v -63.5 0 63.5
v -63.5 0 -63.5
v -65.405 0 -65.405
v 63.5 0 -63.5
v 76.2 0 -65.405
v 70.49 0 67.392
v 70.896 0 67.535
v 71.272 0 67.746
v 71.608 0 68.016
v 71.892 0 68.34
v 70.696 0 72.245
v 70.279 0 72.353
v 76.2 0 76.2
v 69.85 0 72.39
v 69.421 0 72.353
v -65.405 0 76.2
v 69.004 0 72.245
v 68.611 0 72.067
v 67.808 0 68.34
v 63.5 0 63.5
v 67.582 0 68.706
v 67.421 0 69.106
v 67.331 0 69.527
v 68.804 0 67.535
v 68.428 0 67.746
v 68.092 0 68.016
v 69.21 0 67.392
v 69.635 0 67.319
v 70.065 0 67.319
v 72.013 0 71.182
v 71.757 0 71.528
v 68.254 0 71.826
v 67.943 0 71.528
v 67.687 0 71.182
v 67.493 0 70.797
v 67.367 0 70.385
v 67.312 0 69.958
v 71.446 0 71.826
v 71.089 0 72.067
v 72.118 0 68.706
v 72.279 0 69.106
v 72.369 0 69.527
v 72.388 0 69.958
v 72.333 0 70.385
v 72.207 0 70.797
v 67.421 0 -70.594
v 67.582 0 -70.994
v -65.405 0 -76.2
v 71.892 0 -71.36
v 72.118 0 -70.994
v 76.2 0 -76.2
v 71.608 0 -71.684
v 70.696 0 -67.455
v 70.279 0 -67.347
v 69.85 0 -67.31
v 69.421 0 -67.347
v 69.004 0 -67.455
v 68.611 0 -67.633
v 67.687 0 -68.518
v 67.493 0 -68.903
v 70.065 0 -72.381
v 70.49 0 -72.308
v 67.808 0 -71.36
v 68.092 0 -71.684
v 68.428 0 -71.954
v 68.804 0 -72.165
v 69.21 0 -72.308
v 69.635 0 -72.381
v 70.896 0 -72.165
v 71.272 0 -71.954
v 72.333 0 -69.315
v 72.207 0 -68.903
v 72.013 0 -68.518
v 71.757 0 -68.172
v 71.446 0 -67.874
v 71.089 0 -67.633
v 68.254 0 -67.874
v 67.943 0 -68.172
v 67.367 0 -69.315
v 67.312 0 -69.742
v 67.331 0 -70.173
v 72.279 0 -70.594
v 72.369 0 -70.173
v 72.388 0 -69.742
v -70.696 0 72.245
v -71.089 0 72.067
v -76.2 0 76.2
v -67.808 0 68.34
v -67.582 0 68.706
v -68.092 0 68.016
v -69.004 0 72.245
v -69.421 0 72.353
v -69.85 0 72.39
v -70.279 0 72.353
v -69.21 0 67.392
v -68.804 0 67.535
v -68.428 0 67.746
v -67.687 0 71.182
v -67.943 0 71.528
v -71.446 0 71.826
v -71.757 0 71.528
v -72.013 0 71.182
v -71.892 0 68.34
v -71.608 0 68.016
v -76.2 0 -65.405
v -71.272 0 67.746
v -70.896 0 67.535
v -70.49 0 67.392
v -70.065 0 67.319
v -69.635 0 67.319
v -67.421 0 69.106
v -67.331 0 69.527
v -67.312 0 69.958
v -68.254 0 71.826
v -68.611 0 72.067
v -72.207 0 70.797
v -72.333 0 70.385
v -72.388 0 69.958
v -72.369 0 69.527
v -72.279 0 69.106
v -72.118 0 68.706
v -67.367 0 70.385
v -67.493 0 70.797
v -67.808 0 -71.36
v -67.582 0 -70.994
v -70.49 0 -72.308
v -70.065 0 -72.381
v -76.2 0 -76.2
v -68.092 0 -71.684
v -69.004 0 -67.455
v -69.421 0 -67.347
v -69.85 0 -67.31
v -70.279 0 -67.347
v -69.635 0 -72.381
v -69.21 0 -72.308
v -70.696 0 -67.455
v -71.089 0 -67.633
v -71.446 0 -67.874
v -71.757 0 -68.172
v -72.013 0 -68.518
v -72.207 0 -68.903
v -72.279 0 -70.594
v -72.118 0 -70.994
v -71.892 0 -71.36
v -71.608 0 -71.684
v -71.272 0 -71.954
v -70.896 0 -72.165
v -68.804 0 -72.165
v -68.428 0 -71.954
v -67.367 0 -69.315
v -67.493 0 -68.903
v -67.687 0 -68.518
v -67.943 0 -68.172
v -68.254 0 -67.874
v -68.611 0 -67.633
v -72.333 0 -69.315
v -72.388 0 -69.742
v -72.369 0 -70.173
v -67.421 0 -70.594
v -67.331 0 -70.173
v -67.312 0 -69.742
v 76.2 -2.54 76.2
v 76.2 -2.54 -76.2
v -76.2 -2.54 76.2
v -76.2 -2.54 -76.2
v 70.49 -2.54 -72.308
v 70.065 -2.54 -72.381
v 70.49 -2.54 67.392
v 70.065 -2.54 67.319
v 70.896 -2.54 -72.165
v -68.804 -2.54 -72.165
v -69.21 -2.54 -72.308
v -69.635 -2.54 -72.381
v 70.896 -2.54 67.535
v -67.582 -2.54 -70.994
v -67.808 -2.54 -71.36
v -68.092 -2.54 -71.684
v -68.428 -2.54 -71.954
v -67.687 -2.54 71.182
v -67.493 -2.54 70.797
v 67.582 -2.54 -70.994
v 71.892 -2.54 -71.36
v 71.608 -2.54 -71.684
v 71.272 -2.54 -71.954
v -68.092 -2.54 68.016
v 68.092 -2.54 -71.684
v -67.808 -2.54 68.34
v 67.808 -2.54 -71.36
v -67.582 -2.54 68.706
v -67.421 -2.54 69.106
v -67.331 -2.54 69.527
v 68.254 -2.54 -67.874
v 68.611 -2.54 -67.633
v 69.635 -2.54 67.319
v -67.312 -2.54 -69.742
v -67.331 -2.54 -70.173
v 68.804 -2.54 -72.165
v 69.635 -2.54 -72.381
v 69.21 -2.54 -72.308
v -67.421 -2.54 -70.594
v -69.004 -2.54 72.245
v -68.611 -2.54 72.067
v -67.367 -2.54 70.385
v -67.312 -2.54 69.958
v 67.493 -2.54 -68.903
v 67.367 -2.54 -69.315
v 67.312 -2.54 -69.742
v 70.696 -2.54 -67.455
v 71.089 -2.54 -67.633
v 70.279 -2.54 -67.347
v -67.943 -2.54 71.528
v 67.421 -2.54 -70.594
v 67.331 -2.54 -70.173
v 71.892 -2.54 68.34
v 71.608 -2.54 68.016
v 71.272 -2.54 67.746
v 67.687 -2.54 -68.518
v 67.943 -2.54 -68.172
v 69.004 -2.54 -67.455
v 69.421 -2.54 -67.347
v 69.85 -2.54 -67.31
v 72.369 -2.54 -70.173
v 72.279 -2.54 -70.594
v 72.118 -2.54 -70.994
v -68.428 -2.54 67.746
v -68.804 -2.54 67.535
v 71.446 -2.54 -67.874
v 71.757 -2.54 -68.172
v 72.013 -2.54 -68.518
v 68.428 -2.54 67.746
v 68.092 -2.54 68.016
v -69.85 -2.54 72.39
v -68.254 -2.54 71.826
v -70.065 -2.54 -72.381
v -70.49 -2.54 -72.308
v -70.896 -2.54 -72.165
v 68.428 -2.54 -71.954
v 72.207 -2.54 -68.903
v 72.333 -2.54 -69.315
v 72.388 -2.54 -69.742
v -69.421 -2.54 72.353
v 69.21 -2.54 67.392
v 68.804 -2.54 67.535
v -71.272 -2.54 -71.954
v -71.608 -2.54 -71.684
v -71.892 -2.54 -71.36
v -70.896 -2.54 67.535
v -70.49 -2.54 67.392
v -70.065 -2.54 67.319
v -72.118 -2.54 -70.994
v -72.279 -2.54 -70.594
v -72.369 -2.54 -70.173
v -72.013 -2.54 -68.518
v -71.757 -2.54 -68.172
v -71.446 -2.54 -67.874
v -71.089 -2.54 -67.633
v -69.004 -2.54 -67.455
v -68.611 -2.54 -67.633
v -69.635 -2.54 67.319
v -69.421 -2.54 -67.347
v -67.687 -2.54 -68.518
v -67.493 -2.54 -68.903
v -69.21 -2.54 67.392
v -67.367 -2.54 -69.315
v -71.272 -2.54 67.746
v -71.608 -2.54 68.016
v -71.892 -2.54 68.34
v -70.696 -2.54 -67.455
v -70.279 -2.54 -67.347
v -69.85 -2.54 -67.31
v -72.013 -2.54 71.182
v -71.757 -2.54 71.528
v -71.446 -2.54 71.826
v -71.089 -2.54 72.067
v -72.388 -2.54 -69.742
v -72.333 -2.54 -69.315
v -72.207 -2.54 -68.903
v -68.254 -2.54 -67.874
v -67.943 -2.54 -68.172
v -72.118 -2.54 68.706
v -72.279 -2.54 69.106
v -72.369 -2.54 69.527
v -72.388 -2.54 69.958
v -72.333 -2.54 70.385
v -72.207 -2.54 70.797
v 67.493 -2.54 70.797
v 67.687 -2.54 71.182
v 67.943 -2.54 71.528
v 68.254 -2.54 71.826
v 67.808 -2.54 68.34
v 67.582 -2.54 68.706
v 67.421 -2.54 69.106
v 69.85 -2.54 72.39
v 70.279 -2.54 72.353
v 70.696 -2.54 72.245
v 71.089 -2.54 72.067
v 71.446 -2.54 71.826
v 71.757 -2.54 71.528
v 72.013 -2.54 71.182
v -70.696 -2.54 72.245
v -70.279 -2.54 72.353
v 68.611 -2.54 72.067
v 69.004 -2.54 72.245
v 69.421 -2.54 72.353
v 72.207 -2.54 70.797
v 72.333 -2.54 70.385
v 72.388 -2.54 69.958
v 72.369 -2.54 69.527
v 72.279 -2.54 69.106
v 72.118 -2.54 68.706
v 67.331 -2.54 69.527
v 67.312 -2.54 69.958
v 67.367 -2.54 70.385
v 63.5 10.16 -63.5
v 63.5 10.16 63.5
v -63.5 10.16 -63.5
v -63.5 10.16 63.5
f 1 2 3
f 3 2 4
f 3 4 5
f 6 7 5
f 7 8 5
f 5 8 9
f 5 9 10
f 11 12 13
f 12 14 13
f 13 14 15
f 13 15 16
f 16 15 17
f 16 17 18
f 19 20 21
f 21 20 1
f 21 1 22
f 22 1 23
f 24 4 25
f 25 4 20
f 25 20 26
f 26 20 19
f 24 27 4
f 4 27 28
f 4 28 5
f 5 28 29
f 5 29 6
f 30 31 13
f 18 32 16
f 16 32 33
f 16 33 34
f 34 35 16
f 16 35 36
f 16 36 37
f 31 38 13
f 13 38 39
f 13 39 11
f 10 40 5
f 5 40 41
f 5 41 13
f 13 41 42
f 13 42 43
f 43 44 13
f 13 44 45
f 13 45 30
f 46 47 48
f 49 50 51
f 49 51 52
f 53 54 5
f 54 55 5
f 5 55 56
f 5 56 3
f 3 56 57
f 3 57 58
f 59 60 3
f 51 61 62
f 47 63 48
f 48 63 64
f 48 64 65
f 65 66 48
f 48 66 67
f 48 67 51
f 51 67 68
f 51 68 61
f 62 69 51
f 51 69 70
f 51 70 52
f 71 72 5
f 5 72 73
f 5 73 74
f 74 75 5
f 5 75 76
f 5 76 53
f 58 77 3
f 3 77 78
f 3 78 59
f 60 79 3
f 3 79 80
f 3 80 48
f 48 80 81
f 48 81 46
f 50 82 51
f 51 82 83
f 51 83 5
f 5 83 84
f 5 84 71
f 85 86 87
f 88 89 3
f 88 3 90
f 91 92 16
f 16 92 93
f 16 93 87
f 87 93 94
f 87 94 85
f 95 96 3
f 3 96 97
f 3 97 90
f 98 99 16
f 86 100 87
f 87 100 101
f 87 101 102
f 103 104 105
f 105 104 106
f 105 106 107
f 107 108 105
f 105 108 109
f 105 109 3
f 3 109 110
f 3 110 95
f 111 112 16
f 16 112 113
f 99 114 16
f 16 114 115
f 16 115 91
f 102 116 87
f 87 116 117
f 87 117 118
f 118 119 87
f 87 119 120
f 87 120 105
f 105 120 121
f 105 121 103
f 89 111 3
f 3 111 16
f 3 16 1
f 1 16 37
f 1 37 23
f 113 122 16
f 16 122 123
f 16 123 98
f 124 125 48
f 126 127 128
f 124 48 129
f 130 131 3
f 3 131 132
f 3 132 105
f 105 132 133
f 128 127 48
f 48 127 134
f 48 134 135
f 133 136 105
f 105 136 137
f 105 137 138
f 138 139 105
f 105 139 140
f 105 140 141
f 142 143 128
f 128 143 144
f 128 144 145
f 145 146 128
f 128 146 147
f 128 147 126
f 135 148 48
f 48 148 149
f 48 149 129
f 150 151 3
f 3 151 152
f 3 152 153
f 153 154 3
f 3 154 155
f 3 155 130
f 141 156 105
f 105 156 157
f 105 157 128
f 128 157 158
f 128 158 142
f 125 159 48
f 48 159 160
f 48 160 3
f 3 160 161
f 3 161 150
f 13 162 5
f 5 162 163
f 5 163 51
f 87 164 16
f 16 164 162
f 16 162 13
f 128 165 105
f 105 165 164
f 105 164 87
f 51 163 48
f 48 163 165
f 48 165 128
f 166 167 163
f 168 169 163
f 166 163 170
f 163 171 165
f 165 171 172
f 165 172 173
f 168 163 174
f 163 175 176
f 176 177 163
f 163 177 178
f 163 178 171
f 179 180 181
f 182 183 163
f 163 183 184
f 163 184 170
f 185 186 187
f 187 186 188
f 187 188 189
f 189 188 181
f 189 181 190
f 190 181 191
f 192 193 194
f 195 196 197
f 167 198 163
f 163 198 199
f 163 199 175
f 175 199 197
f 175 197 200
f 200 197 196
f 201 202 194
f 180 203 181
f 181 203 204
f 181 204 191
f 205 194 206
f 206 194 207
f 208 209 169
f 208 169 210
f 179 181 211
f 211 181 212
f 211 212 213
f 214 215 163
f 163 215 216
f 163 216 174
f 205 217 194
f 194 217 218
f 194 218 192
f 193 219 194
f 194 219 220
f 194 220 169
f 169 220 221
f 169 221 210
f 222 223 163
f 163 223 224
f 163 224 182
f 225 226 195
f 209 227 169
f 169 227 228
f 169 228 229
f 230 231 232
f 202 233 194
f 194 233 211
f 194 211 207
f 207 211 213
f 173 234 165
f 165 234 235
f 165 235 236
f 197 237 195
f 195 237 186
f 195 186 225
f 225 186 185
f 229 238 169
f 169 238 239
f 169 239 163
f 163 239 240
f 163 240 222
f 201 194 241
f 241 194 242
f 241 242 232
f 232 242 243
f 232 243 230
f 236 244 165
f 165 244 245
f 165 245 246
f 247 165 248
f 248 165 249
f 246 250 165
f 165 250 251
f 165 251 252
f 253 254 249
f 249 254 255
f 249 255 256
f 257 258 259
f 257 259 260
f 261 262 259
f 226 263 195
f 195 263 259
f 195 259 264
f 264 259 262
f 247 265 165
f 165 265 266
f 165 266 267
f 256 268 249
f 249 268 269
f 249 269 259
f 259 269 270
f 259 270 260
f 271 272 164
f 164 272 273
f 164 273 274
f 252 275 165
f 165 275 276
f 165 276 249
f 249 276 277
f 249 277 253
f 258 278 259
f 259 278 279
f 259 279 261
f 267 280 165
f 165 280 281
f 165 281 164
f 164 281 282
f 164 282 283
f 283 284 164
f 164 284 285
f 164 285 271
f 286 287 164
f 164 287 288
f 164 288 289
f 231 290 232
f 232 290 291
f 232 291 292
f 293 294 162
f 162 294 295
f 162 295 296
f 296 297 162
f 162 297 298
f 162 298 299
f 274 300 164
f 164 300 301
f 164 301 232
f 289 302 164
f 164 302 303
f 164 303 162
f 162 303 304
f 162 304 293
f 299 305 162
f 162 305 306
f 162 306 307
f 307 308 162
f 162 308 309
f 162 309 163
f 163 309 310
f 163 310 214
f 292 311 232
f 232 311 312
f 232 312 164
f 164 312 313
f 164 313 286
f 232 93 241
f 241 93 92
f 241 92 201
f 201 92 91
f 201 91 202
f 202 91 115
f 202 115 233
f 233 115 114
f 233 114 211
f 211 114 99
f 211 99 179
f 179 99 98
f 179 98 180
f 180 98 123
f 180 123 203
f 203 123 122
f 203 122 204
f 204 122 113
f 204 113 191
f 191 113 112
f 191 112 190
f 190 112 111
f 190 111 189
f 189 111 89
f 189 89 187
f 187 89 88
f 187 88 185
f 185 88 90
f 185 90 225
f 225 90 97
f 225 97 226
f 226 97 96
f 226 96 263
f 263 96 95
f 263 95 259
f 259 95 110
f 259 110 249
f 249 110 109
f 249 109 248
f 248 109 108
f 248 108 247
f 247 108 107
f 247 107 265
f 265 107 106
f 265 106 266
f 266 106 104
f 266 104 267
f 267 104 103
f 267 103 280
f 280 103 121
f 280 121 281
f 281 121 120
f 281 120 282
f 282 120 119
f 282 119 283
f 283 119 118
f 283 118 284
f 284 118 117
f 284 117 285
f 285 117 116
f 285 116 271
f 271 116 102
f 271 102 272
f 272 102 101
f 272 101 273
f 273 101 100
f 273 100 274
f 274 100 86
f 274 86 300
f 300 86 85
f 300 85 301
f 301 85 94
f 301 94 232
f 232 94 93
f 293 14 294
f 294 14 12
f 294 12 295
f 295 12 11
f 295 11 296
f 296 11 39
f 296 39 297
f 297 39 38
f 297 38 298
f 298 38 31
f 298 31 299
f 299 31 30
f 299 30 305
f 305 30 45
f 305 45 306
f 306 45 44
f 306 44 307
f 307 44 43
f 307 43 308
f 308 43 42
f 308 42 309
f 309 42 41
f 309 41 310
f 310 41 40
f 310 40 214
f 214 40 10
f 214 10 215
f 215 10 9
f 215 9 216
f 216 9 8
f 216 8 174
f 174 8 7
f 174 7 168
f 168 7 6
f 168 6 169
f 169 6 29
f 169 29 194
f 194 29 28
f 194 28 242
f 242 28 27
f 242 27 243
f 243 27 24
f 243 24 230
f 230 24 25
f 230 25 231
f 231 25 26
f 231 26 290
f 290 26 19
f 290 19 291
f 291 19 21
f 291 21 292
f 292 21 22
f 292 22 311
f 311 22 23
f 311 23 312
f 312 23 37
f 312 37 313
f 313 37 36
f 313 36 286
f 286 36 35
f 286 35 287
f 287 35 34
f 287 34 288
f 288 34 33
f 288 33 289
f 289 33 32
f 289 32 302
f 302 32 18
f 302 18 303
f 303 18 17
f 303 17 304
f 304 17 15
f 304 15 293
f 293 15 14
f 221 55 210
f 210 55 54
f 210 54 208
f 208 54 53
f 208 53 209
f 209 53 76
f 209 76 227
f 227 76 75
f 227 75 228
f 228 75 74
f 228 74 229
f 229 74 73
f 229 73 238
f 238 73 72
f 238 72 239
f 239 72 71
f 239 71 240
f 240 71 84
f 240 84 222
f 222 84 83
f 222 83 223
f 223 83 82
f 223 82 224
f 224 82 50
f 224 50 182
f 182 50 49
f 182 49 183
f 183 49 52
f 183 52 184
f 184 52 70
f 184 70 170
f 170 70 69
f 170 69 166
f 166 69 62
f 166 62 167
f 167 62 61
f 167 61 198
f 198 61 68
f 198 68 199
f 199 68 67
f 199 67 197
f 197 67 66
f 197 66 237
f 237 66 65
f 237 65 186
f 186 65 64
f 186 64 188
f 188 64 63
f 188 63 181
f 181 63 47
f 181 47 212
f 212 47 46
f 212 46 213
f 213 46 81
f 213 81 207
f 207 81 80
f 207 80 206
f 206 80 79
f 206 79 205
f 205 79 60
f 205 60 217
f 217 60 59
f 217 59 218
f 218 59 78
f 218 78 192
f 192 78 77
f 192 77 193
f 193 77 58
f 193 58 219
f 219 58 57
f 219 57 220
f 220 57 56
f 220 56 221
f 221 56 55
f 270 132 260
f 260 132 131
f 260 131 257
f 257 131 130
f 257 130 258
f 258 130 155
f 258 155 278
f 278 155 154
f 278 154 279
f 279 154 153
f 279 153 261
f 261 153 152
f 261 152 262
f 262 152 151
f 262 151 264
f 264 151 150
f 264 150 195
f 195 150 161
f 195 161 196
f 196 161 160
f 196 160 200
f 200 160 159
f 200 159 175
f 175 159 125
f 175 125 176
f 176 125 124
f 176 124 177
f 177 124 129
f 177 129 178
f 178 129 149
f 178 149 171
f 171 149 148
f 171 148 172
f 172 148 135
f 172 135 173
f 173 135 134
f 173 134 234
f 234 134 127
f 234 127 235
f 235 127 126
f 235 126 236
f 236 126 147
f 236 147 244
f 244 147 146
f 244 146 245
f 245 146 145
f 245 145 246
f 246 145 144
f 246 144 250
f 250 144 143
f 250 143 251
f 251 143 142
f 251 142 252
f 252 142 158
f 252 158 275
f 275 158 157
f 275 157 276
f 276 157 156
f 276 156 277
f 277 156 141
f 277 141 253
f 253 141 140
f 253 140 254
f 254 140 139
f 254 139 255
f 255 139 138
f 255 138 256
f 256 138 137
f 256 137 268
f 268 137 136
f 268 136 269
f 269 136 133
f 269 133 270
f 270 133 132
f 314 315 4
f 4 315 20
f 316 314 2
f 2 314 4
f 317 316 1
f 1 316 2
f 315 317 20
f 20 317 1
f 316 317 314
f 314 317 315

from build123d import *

# Parameters (mm, degrees)
SKETCH1_W           = 152.4
SKETCH1_H           = 152.4
BOSS_EXTRUDE1_DEPTH = 2.54
SKETCH9_R           = 2.54
CUT_EXTRUDE5_DEPTH  = 3.54
SKETCH10_W          = 127
SKETCH10_H          = 127
BOSS_EXTRUDE2_DEPTH = 10.16


with BuildPart() as part:
    # Sketch1 → Boss-Extrude1 (new body)
    with BuildSketch(Plane(origin=(0, 0, 0), x_dir=(1, 0, 0), z_dir=(0, 1, 0))):
        Rectangle(SKETCH1_W, SKETCH1_H)
    extrude(amount=-BOSS_EXTRUDE1_DEPTH)

    # Sketch9 → Cut-Extrude5 (cut, through all)
    with BuildSketch(Plane(origin=(0, 0, 0), x_dir=(1, 0, 0), z_dir=(0, 1, 0))):
        with Locations((-69.85, -69.85)):
            Circle(SKETCH9_R)
        with Locations((69.85, -69.85)):
            Circle(SKETCH9_R)
        with Locations((69.85, 69.85)):
            Circle(SKETCH9_R)
        with Locations((-69.85, 69.85)):
            Circle(SKETCH9_R)
    extrude(amount=-CUT_EXTRUDE5_DEPTH, mode=Mode.SUBTRACT)

    # Sketch10 → Boss-Extrude2 (add)
    with BuildSketch(Plane(origin=(0, 0, 0), x_dir=(1, 0, 0), z_dir=(0, 1, 0))):
        Rectangle(SKETCH10_W, SKETCH10_H)
    extrude(amount=BOSS_EXTRUDE2_DEPTH)


solid = part.part
